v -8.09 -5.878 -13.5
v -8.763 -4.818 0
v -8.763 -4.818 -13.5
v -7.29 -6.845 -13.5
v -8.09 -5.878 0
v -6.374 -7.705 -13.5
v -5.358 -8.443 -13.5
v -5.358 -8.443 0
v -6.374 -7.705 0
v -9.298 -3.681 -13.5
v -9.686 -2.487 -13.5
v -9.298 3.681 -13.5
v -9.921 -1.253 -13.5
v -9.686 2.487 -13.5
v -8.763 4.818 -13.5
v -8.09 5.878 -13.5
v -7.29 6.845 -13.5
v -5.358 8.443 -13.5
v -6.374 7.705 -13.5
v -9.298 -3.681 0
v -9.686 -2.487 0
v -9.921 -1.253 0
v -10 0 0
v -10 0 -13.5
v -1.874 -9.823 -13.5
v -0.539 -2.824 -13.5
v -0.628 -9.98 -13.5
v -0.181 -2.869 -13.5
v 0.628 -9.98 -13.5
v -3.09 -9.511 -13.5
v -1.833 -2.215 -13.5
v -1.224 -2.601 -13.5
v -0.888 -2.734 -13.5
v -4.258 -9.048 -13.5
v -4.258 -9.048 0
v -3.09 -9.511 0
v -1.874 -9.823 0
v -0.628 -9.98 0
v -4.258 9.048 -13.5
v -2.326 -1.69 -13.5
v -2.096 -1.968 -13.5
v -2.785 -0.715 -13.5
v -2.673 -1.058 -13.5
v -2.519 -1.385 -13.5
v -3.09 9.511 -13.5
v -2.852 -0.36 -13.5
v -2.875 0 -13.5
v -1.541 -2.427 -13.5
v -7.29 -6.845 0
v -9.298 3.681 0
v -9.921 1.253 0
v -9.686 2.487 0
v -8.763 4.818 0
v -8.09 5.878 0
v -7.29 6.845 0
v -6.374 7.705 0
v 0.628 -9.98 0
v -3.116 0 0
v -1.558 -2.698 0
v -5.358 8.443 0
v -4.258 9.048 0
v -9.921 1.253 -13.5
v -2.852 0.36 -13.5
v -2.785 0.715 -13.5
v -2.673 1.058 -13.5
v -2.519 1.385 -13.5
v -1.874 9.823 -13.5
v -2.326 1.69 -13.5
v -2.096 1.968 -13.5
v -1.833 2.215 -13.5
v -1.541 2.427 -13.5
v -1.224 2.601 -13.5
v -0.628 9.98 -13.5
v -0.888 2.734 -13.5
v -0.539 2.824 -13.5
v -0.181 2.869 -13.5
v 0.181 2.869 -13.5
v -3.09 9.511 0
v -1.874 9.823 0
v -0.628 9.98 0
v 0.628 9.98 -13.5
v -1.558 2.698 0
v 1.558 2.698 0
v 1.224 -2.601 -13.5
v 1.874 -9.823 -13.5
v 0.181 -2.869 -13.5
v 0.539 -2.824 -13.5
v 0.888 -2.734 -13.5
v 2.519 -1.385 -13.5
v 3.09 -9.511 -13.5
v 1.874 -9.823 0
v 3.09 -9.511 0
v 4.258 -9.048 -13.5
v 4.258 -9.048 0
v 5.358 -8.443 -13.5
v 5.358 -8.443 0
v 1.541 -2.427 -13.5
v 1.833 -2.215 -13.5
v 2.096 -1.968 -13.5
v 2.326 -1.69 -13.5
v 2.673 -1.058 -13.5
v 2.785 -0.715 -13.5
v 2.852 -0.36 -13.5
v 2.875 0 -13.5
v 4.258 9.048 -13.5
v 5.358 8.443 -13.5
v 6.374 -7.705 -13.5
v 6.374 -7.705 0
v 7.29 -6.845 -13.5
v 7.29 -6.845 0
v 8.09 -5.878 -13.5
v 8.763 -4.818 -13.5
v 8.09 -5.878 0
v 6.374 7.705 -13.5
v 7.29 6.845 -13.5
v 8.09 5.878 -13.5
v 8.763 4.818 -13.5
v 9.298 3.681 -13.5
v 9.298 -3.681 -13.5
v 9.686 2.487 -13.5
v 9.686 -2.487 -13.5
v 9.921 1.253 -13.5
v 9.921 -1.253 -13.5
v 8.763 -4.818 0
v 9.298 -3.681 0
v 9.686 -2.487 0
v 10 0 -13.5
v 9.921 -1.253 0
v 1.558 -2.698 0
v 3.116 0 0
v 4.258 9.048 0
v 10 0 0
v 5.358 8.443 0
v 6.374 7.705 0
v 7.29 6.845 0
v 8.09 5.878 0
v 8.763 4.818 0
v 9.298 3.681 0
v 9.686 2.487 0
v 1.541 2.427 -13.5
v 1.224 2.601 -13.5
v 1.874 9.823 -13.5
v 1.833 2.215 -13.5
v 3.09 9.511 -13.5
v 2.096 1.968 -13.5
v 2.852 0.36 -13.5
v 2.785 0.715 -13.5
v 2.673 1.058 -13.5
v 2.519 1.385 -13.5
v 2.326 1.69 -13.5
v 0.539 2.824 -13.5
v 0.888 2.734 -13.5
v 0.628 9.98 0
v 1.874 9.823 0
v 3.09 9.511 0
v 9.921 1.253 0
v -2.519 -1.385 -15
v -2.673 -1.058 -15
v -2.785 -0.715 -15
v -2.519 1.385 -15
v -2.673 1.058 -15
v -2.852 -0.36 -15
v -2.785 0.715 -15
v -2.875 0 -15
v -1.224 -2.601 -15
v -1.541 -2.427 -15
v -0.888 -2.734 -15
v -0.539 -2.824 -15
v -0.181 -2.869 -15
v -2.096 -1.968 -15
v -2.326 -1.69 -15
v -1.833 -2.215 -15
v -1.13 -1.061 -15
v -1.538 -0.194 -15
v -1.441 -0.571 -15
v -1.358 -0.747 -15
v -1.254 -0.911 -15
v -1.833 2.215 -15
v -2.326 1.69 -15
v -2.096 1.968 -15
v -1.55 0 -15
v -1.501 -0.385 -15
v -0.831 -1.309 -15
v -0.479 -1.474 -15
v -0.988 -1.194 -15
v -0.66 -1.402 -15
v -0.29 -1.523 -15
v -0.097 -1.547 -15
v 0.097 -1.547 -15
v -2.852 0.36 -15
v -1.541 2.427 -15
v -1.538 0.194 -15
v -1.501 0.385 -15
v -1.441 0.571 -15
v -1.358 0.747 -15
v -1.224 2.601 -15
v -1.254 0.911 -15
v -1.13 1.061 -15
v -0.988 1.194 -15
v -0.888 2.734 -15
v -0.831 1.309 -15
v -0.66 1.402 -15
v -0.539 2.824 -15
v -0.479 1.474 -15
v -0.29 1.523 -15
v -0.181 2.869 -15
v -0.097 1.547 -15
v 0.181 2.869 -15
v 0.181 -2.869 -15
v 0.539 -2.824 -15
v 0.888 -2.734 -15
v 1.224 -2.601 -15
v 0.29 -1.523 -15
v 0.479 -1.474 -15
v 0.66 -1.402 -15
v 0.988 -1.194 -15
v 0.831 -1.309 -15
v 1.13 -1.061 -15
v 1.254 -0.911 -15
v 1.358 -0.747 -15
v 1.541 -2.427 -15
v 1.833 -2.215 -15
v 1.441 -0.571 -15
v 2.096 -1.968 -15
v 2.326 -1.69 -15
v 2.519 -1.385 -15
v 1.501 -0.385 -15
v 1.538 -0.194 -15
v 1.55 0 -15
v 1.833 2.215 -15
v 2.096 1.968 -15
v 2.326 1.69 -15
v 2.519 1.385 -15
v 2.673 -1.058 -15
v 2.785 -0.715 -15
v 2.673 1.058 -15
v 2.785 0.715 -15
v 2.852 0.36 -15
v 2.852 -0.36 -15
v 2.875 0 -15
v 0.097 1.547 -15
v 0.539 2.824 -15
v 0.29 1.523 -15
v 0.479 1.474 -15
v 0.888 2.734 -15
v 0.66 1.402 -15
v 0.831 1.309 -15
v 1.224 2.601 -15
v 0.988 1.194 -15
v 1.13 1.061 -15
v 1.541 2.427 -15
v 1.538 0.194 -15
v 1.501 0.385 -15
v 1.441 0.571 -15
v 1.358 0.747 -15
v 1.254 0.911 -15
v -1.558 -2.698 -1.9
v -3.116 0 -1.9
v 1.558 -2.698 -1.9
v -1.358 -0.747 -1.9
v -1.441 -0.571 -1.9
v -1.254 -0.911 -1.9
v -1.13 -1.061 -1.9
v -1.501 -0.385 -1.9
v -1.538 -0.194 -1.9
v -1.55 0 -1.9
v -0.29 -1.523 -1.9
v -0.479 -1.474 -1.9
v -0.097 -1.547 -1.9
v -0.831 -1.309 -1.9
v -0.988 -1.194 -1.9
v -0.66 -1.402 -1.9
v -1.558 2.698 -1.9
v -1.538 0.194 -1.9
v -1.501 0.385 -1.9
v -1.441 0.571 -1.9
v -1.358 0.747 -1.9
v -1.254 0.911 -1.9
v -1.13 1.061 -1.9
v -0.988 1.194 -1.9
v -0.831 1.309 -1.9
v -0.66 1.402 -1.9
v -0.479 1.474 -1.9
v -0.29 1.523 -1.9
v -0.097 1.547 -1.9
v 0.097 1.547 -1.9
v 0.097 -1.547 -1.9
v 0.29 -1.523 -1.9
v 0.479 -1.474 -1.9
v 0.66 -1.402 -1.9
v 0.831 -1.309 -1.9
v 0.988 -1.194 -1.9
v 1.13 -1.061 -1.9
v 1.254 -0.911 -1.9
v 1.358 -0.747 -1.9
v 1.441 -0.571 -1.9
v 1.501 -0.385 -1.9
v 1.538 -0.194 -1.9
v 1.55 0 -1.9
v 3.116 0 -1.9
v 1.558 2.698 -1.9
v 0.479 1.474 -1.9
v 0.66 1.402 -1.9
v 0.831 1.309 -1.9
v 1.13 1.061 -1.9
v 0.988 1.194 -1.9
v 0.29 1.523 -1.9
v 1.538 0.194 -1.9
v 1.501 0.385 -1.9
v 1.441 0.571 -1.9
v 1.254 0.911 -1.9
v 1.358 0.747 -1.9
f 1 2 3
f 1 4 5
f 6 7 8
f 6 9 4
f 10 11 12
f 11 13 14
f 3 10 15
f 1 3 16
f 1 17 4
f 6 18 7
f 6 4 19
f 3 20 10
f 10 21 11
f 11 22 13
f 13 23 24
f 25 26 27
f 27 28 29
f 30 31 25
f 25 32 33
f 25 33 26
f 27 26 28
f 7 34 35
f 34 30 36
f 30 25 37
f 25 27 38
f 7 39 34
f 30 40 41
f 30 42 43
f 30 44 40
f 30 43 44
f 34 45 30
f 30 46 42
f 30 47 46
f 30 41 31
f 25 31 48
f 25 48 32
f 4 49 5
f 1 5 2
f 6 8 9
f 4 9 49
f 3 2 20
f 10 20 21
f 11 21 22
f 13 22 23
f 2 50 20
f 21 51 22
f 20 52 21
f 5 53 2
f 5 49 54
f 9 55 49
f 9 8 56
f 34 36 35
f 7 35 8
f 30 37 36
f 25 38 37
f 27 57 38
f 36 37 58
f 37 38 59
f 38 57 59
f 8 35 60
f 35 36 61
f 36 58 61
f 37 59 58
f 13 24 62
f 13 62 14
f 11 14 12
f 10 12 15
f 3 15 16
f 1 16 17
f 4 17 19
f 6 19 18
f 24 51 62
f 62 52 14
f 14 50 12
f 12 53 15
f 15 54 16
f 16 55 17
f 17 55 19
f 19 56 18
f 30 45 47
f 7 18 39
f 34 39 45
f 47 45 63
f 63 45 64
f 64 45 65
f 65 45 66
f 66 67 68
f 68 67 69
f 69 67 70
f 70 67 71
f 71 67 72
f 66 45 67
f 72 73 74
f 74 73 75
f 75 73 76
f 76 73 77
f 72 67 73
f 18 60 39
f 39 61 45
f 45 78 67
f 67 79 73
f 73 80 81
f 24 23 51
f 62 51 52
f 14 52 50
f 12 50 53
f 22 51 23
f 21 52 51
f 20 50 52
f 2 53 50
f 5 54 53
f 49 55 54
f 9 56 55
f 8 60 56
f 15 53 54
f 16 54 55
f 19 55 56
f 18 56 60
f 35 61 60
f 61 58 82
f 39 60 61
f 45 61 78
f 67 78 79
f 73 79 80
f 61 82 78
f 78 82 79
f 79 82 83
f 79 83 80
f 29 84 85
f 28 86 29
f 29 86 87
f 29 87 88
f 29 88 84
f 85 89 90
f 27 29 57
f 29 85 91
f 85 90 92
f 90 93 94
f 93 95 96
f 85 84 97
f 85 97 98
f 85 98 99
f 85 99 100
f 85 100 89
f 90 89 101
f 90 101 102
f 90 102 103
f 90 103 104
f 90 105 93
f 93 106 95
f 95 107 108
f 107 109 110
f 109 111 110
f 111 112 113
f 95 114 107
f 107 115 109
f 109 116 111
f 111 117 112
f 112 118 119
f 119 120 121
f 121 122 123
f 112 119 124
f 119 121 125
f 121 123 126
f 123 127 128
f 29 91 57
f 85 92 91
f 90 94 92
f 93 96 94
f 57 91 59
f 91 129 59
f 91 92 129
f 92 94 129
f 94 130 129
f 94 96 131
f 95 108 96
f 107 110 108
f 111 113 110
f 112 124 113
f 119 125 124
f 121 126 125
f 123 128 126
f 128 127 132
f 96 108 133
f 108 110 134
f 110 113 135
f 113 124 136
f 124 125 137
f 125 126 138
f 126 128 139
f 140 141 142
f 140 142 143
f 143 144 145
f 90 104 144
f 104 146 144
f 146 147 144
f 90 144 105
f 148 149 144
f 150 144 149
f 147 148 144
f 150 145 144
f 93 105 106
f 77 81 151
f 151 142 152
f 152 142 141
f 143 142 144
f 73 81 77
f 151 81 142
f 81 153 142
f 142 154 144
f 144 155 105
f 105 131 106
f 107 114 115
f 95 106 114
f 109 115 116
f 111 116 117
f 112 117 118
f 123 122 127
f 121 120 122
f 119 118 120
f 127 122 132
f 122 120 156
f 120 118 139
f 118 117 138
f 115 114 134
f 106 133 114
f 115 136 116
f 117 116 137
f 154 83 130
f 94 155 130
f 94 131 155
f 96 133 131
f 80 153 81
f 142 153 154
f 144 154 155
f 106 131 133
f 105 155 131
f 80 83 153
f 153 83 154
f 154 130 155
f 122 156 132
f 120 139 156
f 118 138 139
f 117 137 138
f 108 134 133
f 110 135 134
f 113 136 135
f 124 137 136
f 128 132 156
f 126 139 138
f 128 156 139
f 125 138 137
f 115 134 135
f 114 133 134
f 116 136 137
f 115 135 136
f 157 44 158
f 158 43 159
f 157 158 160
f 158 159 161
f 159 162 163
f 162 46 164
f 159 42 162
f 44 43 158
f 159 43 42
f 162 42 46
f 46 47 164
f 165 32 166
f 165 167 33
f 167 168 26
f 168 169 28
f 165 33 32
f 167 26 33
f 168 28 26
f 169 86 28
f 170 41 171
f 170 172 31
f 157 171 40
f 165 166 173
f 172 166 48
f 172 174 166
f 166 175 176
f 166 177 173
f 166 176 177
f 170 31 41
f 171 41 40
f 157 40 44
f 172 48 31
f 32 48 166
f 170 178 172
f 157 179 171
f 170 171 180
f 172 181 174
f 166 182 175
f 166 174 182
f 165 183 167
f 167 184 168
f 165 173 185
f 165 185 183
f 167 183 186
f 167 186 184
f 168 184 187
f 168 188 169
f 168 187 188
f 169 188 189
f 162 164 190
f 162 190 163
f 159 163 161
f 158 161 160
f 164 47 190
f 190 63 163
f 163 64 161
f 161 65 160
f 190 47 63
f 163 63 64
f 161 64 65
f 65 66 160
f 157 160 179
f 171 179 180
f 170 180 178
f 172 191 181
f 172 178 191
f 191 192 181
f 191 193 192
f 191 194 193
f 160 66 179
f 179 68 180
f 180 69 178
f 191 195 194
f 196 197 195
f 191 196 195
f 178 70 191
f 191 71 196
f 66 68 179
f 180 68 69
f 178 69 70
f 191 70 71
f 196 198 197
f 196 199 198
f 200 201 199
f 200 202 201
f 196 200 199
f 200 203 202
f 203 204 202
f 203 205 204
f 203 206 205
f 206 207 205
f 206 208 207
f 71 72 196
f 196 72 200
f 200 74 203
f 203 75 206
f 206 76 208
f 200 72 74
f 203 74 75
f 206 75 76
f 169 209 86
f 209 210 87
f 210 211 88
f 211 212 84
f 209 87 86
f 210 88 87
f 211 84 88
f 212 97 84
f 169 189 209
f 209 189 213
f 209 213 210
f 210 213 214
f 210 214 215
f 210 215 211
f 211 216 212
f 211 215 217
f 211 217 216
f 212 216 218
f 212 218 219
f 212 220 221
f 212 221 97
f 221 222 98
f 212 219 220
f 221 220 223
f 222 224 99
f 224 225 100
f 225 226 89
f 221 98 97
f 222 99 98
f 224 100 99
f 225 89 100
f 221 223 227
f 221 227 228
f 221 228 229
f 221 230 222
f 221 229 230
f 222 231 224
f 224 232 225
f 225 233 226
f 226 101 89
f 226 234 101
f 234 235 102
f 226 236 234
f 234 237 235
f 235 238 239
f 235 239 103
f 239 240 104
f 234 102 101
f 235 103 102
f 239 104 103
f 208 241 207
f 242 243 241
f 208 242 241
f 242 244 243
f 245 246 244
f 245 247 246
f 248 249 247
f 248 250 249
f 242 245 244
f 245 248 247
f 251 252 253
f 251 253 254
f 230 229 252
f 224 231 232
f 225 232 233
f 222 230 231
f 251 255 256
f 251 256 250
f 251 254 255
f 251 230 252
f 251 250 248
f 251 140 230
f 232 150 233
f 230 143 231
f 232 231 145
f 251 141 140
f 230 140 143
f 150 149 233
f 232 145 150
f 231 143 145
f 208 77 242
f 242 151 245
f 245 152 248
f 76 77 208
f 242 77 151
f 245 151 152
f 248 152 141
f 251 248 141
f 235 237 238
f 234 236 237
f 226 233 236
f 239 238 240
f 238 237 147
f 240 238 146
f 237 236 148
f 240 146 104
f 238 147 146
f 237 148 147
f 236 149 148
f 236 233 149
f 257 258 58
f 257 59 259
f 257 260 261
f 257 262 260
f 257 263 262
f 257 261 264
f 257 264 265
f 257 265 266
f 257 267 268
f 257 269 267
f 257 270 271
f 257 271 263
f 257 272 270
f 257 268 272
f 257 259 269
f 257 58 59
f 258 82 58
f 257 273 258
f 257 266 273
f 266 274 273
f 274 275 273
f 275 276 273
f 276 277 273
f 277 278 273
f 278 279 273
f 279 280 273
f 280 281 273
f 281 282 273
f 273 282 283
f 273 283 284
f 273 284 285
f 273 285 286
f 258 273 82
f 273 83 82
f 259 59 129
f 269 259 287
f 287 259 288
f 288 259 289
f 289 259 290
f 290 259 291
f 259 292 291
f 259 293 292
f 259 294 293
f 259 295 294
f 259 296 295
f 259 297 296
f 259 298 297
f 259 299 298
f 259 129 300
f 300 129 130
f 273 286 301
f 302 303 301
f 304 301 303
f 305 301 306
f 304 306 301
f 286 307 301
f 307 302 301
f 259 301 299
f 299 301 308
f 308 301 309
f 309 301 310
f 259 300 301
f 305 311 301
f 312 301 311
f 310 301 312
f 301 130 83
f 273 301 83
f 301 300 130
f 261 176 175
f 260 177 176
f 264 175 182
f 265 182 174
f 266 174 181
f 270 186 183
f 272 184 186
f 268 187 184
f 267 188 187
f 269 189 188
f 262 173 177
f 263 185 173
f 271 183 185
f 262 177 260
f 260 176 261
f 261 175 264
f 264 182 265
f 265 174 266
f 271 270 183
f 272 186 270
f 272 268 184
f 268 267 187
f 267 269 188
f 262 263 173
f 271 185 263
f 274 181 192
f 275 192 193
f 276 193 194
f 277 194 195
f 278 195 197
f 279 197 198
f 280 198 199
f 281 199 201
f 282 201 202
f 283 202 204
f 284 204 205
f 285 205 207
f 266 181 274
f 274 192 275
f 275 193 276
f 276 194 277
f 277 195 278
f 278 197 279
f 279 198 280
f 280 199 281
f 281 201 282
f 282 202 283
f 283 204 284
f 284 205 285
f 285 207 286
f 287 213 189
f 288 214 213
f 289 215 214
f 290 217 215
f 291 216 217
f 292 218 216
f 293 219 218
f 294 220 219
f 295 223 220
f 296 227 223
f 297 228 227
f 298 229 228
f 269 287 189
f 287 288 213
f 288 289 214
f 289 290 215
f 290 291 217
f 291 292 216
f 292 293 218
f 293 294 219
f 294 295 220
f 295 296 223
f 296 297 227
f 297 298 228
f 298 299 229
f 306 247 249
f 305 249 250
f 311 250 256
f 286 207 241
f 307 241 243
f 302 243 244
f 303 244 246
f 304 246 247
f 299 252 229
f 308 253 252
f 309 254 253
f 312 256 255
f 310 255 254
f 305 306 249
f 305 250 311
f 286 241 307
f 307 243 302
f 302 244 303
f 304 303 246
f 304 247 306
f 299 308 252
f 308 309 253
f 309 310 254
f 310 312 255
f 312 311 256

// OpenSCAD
$fn = 50;


difference() {
	union() {
		translate(v = [0, 0, -13.5000000000]) {
			cylinder(h = 13.5000000000, r = 10.0000000000);
		}
		#translate(v = [0, 0, -15.0000000000]) {
			cylinder(h = 15, r = 2.8750000000);
		}
	}
	union() {
		translate(v = [0, 0, 0]) {
			rotate(a = [0, 0, 0]) {
				difference() {
					union() {
						translate(v = [0, 0, -1.9000000000]) {
							linear_extrude(height = 1.9000000000) {
								polygon(points = [[3.1158000000, 0.0000000000], [1.5579000000, 2.6983619531], [-1.5579000000, 2.6983619531], [-3.1158000000, 0.0000000000], [-1.5579000000, -2.6983619531], [1.5579000000, -2.6983619531]]);
							}
						}
					}
					union();
				}
			}
		}
		#translate(v = [0, 0, -100.0000000000]) {
			cylinder(h = 200, r = 1.5500000000);
		}
	}
}
